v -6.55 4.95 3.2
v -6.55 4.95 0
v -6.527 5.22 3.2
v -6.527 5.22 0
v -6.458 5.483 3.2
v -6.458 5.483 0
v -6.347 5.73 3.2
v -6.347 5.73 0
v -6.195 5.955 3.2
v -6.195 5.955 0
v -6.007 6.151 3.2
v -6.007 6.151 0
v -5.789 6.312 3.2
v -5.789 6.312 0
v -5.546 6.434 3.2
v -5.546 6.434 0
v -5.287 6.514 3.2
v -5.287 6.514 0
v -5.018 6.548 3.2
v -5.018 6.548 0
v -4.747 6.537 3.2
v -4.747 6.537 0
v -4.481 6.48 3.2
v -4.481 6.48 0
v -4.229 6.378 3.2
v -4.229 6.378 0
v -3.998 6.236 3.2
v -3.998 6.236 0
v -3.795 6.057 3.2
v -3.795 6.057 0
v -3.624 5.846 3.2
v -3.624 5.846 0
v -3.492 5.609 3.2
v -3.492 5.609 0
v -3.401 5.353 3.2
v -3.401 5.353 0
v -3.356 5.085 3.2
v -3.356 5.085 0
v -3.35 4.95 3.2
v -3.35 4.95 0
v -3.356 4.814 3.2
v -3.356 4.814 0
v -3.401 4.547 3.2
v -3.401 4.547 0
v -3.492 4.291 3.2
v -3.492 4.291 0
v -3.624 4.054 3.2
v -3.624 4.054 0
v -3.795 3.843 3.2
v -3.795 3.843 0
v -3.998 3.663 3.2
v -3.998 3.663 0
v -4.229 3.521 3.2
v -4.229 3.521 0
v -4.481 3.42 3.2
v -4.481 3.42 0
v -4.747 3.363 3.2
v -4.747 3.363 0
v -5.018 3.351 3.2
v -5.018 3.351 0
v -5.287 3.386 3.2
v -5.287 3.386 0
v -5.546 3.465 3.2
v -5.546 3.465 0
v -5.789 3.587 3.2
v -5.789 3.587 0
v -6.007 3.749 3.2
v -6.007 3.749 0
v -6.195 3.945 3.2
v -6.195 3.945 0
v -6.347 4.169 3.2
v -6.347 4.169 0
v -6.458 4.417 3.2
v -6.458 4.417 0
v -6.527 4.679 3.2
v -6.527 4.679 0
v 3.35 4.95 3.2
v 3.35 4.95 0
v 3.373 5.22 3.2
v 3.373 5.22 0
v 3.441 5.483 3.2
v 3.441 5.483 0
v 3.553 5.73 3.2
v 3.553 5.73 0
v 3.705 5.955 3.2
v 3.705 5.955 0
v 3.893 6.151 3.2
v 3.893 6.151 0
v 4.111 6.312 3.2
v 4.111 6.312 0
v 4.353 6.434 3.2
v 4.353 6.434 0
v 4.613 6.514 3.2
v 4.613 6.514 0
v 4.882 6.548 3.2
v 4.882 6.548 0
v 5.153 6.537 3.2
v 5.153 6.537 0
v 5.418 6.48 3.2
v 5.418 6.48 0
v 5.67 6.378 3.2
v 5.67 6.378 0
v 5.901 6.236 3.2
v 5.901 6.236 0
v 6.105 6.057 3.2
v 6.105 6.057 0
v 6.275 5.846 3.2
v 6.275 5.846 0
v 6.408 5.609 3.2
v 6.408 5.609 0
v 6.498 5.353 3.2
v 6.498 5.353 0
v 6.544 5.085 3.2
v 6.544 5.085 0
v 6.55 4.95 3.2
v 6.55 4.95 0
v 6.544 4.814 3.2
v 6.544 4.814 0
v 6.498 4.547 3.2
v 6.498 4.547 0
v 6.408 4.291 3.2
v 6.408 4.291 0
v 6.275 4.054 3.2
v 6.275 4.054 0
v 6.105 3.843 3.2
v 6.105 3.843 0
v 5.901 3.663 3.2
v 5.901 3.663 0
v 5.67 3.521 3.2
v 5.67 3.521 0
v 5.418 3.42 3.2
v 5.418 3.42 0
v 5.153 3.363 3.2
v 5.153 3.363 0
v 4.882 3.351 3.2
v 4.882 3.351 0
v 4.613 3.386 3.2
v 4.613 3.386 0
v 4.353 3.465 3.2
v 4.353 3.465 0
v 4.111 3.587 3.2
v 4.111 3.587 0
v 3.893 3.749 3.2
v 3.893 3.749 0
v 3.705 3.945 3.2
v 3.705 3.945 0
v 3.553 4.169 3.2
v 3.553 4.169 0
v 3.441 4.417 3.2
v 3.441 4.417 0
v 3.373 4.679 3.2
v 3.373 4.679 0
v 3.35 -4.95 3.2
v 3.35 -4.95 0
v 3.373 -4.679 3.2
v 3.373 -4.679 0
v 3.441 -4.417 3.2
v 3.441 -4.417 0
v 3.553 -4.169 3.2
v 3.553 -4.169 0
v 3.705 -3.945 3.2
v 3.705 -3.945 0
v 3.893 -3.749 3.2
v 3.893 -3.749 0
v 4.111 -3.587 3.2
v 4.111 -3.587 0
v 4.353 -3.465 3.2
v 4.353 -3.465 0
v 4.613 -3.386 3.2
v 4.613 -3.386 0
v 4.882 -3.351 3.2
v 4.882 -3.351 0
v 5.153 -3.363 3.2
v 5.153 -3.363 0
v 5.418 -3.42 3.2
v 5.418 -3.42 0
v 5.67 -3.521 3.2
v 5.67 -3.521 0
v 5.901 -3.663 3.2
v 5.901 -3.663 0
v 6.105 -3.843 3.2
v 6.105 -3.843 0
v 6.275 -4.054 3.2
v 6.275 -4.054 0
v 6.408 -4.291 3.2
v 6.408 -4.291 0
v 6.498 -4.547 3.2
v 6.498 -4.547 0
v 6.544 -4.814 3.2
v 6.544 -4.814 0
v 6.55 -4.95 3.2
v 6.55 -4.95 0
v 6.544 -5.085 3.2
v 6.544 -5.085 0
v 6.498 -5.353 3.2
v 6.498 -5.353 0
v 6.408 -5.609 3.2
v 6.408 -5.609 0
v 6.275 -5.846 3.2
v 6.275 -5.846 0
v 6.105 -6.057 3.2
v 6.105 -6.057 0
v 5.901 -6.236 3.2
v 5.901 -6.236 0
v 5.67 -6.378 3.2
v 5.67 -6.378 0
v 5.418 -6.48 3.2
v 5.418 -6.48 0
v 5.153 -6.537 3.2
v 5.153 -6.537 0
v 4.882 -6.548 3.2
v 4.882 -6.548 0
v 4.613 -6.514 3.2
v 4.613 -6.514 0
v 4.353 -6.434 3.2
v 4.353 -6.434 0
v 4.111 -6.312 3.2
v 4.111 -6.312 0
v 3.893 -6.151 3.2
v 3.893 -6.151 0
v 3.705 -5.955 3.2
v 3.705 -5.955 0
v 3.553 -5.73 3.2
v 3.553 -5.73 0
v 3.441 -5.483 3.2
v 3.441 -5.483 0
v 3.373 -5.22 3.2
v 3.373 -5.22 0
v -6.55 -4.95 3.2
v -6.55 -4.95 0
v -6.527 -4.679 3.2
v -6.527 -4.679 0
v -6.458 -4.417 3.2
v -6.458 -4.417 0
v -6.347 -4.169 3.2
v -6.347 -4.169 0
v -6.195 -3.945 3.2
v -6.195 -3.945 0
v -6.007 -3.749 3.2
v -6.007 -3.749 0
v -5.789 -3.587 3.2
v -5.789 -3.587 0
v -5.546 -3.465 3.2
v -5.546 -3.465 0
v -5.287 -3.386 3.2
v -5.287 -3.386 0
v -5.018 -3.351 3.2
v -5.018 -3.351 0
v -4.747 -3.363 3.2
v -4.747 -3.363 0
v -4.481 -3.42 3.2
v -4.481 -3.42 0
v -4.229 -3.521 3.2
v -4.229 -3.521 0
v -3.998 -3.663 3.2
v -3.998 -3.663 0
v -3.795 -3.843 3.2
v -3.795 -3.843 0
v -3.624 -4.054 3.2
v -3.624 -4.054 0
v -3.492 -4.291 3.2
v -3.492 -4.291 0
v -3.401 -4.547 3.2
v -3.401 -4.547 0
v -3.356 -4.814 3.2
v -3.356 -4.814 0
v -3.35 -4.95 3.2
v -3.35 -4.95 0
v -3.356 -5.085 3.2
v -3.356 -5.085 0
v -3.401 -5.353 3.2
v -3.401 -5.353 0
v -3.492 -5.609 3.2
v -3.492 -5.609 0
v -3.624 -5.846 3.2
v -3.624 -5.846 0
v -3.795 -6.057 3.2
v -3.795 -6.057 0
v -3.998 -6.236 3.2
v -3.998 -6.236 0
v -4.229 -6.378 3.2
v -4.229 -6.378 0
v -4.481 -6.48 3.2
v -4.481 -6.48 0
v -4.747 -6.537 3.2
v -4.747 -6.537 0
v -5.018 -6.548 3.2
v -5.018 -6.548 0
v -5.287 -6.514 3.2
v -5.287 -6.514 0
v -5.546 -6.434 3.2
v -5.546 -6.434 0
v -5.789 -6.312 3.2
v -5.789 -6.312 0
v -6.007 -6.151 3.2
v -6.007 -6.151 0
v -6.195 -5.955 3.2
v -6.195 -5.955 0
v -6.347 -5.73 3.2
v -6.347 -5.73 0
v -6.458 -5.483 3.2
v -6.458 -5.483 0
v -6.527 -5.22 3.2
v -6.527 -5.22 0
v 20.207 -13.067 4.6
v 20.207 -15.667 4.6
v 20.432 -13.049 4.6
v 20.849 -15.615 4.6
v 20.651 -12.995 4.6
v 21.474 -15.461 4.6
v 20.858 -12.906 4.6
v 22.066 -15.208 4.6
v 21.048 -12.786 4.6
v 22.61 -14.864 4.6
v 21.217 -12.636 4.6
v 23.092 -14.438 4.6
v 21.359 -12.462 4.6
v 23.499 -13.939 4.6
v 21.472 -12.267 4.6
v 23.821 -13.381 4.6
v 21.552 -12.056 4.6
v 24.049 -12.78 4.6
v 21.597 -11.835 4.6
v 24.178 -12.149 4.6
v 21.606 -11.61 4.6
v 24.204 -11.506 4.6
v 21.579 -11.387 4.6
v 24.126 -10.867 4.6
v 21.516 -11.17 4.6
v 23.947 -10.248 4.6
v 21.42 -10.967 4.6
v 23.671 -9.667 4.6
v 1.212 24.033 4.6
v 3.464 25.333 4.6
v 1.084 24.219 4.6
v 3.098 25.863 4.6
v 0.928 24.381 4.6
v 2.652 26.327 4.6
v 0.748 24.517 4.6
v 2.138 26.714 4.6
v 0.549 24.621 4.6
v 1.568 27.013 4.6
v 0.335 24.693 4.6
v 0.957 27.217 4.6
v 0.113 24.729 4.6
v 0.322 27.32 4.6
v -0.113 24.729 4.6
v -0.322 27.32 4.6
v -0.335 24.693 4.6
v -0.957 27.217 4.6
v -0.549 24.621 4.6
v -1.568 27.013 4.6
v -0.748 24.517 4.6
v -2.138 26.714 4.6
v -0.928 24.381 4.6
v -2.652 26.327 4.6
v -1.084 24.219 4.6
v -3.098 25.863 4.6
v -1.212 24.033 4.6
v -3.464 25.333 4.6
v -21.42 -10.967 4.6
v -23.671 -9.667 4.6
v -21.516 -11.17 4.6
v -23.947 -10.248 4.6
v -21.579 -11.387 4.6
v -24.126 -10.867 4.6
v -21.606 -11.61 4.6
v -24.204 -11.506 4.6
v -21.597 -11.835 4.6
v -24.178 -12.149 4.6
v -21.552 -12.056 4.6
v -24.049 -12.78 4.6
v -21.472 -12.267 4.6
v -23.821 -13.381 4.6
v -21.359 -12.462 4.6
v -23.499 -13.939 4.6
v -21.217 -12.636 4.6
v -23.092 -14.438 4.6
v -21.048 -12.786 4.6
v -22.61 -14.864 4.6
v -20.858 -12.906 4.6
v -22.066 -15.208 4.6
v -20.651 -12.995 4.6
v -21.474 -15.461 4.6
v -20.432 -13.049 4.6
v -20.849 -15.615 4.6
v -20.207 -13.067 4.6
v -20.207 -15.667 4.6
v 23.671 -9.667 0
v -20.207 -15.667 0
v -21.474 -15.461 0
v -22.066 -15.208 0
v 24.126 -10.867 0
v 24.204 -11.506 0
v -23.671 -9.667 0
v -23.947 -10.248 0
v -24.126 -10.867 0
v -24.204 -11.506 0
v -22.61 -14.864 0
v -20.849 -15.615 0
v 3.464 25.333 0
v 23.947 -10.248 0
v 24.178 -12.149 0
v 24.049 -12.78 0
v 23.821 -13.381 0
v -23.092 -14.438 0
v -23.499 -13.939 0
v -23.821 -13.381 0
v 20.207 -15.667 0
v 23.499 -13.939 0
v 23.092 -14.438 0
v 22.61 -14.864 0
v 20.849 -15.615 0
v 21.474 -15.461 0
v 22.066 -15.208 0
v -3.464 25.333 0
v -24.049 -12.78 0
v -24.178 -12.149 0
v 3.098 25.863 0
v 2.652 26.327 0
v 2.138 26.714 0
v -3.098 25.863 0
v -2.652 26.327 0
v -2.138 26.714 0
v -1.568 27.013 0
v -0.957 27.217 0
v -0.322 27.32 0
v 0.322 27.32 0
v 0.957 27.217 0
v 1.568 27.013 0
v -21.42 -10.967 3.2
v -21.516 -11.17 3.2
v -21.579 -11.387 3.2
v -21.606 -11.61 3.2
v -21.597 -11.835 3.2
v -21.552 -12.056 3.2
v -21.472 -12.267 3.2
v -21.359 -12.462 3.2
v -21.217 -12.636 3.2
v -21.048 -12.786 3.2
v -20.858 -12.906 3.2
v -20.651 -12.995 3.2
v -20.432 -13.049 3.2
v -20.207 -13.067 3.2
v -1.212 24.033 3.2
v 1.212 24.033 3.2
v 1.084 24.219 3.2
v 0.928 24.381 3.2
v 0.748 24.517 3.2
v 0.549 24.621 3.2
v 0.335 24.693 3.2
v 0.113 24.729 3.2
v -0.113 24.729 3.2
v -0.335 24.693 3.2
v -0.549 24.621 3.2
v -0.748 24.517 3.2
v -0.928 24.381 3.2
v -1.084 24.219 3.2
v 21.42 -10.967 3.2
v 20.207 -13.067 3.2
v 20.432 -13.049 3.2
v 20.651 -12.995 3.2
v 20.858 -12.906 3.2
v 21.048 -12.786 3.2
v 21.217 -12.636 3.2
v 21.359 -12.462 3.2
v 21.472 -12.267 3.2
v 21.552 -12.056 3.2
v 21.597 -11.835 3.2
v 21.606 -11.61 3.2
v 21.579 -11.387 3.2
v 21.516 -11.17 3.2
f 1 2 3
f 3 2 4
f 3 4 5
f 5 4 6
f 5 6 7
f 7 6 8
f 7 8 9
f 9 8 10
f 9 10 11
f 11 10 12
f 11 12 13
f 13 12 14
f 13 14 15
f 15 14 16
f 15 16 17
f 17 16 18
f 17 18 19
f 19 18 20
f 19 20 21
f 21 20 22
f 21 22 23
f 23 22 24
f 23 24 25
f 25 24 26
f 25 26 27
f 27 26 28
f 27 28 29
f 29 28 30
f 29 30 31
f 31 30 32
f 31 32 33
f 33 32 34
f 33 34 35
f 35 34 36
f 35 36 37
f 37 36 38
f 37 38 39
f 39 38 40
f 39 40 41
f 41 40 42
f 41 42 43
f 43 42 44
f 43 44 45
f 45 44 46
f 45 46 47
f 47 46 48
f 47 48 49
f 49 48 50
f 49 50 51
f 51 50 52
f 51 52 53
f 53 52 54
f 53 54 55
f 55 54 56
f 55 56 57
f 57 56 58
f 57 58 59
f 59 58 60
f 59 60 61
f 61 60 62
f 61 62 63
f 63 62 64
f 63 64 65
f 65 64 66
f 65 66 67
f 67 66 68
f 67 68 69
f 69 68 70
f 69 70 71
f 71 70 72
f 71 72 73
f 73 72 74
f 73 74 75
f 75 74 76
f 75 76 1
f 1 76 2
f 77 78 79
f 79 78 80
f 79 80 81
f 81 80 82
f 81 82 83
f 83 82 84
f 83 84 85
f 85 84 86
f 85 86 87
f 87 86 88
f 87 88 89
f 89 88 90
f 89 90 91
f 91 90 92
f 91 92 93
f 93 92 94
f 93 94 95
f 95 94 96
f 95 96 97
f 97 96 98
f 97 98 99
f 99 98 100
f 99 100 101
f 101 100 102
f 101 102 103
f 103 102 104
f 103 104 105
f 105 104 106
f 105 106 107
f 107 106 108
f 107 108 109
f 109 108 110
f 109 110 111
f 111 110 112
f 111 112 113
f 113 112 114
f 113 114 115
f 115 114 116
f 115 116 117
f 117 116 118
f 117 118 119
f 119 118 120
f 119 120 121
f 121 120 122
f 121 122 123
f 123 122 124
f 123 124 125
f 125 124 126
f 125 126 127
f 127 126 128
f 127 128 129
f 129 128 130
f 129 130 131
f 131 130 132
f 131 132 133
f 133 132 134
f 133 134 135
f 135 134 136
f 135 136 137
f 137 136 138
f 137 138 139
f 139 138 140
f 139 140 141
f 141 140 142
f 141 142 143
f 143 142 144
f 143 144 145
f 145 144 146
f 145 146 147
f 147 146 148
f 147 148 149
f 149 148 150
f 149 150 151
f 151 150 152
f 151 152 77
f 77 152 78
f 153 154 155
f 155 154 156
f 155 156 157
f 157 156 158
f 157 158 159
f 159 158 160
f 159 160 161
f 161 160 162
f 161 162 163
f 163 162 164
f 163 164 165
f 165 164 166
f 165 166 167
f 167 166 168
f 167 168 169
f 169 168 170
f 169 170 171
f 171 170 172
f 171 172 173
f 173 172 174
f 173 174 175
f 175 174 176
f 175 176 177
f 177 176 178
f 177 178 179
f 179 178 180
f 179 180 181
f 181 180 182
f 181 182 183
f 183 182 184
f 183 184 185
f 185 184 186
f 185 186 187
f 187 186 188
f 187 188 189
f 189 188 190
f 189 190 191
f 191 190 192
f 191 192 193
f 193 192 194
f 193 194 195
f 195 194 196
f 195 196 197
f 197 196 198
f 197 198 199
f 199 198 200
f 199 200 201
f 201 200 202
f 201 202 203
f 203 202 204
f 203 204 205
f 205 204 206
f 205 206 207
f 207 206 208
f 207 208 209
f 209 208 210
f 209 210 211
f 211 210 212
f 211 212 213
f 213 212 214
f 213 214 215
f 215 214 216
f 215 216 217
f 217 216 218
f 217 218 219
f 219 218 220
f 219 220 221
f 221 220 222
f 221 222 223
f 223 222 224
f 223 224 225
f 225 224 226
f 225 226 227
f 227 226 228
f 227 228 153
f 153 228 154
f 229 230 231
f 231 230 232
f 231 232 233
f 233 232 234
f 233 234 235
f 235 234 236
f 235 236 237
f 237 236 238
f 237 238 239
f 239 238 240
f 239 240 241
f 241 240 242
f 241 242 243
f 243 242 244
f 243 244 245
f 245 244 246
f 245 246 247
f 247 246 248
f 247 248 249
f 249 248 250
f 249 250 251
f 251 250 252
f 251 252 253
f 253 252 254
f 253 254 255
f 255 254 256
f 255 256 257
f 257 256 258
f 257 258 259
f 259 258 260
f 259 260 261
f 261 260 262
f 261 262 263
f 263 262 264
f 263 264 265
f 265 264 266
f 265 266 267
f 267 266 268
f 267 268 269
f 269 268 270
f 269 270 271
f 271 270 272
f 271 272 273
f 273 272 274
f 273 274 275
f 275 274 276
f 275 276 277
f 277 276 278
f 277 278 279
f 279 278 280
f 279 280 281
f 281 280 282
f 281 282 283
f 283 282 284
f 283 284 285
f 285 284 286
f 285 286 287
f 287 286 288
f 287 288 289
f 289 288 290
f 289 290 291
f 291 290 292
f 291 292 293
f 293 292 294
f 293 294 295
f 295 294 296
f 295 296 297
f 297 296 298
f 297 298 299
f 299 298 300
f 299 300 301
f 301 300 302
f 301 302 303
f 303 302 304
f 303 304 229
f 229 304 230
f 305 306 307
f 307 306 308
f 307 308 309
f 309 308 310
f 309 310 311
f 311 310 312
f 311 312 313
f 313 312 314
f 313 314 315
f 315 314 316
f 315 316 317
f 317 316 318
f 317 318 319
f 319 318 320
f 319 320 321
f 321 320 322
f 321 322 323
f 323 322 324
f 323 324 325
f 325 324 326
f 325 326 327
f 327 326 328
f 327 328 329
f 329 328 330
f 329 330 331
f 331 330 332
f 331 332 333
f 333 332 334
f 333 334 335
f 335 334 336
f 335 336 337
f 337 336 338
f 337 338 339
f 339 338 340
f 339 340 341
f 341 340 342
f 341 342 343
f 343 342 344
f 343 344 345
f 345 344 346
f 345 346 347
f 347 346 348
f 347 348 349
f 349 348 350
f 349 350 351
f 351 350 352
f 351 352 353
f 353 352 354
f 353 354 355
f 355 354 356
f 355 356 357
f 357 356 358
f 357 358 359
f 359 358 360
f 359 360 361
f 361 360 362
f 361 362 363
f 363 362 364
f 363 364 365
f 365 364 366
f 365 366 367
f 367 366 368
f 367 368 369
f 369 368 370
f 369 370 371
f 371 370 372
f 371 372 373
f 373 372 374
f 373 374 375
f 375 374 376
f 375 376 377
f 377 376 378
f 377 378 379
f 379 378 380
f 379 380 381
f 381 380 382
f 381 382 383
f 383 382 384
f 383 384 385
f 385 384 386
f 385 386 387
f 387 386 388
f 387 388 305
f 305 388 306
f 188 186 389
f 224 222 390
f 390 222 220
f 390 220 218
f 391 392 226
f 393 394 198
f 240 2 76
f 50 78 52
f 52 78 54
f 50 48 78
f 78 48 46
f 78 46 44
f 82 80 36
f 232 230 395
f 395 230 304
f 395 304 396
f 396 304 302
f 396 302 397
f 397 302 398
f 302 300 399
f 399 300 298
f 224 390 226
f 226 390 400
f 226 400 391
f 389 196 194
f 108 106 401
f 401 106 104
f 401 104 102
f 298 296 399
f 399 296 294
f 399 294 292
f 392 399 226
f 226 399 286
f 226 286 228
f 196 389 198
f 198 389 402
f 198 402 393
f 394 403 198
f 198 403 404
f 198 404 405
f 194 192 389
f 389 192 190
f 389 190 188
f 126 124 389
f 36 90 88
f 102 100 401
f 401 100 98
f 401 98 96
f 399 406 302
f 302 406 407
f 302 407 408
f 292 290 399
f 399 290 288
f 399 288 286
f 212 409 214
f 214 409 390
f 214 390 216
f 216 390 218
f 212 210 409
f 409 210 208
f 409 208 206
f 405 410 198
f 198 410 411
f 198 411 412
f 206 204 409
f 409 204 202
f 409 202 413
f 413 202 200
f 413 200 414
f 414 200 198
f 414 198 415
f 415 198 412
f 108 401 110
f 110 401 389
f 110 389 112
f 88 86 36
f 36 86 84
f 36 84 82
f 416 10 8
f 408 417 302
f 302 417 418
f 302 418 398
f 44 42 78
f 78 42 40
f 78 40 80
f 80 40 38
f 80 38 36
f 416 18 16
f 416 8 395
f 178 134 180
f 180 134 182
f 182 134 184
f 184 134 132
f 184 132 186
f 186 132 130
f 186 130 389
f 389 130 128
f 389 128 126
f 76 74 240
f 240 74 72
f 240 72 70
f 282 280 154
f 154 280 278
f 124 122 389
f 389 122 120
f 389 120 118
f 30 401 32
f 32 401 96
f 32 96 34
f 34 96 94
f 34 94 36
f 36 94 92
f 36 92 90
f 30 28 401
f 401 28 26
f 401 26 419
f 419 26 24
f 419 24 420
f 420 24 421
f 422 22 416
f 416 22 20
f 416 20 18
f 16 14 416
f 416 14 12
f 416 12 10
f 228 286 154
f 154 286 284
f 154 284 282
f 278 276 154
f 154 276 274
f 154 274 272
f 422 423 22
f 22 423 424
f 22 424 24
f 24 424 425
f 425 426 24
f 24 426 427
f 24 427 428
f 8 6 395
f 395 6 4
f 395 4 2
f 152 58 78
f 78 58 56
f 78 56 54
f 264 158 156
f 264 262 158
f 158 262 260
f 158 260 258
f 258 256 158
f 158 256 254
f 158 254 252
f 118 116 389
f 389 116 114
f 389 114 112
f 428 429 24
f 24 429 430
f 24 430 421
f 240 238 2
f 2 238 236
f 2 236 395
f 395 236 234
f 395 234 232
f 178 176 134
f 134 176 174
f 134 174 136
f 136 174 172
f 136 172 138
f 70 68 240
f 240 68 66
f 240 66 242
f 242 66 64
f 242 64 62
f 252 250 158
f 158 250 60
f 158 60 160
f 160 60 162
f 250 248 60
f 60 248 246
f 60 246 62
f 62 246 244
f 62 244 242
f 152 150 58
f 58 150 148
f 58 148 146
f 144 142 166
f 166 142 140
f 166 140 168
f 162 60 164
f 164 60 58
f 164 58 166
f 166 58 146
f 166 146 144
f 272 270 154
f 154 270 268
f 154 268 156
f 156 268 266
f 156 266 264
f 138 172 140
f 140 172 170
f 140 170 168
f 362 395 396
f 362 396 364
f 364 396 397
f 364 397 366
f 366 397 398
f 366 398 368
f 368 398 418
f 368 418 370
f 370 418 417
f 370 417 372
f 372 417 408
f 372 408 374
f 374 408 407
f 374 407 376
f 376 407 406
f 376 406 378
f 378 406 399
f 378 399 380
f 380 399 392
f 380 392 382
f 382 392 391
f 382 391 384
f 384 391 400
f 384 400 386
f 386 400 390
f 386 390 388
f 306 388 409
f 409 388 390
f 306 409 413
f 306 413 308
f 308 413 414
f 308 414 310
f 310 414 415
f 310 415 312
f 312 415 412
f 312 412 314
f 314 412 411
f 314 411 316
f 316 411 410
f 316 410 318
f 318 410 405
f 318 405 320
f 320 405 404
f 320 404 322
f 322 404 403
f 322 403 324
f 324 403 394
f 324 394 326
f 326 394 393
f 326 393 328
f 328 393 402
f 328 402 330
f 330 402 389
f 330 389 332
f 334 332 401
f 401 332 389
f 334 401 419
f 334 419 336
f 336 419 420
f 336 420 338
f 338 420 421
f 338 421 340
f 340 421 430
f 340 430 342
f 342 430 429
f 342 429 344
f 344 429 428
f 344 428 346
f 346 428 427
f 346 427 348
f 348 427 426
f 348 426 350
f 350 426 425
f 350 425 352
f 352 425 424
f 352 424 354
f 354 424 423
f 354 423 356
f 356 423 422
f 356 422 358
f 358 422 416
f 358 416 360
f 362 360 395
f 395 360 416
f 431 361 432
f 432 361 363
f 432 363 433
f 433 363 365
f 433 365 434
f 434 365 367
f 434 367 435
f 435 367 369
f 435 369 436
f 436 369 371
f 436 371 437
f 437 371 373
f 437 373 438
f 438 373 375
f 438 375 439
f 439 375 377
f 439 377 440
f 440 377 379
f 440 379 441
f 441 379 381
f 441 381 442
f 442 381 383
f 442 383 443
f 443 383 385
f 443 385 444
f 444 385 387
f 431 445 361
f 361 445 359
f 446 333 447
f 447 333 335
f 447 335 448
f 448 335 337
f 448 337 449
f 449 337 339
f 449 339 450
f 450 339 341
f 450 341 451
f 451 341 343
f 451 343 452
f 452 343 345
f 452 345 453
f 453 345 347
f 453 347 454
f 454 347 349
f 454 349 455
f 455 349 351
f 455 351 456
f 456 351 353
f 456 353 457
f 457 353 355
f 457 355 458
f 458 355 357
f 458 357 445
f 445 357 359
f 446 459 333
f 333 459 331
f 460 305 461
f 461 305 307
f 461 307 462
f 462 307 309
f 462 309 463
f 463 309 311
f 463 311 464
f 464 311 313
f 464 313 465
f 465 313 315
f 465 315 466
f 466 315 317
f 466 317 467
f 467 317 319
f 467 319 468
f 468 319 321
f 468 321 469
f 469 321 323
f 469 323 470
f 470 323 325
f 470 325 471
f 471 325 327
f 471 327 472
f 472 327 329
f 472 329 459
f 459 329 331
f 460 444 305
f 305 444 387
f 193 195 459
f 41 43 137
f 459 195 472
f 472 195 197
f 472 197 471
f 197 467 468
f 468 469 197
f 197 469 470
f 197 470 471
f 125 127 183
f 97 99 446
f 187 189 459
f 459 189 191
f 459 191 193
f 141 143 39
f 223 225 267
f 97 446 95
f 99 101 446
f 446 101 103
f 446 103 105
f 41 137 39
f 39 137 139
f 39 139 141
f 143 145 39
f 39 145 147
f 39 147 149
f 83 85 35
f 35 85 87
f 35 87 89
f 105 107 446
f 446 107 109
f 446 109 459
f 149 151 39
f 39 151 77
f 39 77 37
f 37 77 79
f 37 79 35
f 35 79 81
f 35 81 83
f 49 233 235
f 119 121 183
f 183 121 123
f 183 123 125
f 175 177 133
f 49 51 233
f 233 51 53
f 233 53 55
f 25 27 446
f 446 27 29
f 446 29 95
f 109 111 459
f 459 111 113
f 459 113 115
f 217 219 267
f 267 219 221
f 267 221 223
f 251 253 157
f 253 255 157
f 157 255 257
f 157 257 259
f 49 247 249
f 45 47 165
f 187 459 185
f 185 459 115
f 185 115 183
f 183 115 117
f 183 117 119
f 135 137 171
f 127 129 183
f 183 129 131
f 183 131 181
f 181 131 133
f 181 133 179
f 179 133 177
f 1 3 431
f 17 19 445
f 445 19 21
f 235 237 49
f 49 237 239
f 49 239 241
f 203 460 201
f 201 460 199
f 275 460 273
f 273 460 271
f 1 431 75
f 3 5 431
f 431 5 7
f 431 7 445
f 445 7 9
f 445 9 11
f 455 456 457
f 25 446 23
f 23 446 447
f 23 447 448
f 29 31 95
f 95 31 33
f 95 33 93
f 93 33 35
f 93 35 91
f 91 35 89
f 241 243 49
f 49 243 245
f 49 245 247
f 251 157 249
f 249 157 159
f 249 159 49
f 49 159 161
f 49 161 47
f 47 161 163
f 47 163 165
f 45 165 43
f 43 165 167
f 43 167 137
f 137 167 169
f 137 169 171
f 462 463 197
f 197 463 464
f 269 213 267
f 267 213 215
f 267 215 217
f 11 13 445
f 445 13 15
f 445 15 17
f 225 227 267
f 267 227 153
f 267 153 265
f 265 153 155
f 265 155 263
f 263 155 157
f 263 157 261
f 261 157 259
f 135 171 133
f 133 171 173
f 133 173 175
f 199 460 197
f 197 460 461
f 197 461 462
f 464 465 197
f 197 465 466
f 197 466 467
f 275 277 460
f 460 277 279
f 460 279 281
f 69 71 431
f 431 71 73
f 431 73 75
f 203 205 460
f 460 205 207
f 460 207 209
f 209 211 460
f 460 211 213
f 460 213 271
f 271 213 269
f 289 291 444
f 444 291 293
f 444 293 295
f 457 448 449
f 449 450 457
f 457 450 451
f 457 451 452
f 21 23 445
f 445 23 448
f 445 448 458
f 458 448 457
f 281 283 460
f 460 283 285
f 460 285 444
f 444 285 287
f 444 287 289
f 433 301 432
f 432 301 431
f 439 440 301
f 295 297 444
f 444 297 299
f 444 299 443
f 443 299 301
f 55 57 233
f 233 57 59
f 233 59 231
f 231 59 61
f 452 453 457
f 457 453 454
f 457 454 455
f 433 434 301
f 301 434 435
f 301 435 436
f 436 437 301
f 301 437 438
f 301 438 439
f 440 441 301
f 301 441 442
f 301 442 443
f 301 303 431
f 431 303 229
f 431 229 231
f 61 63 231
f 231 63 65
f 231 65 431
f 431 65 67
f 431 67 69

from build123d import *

# Parameters (mm, degrees)
SKETCH1_R           = 1.6
BOSS_EXTRUDE1_DEPTH = 4.6
CUT_EXTRUDE3_DEPTH  = 1.4


with BuildPart() as part:
    # Sketch1 → Boss-Extrude1 (new body)
    with BuildSketch(Plane.XY):
        with BuildLine():
            Line((-3.464101615, 25.333333333), (-23.671361037, -9.666666667))
            ThreePointArc((-23.671361037, -9.666666667), (-23.671361037, -13.666666667), (-20.207259422, -15.666666667))
            Line((-20.207259422, -15.666666667), (20.207259422, -15.666666667))
            ThreePointArc((20.207259422, -15.666666667), (23.671361037, -13.666666667), (23.671361037, -9.666666667))
            Line((23.671361037, -9.666666667), (3.464101615, 25.333333333))
            ThreePointArc((3.464101615, 25.333333333), (0, 27.333333333), (-3.464101615, 25.333333333))
        make_face()
        with Locations((-4.949747468, 4.949747468)):
            Circle(SKETCH1_R, mode=Mode.SUBTRACT)
        with Locations((4.949747468, 4.949747468)):
            Circle(SKETCH1_R, mode=Mode.SUBTRACT)
        with Locations((4.949747468, -4.949747468)):
            Circle(SKETCH1_R, mode=Mode.SUBTRACT)
        with Locations((-4.949747468, -4.949747468)):
            Circle(SKETCH1_R, mode=Mode.SUBTRACT)
    extrude(amount=BOSS_EXTRUDE1_DEPTH)

    # Sketch4 → Cut-Extrude3 (cut)
    with BuildSketch(Plane.XY.offset(4.6)):
        with BuildLine():
            Line((-20.207259422, -13.066666667), (20.207259422, -13.066666667))
            ThreePointArc((20.207259422, -13.066666667), (21.419694987, -12.366666667), (21.419694987, -10.966666667))
            Line((21.419694987, -10.966666667), (1.212435565, 24.033333333))
            ThreePointArc((1.212435565, 24.033333333), (0, 24.733333333), (-1.212435565, 24.033333333))
            Line((-1.212435565, 24.033333333), (-21.419694987, -10.966666667))
            ThreePointArc((-21.419694987, -10.966666667), (-21.419694987, -12.366666667), (-20.207259422, -13.066666667))
        make_face()
    extrude(amount=-CUT_EXTRUDE3_DEPTH, mode=Mode.SUBTRACT)


solid = part.part
